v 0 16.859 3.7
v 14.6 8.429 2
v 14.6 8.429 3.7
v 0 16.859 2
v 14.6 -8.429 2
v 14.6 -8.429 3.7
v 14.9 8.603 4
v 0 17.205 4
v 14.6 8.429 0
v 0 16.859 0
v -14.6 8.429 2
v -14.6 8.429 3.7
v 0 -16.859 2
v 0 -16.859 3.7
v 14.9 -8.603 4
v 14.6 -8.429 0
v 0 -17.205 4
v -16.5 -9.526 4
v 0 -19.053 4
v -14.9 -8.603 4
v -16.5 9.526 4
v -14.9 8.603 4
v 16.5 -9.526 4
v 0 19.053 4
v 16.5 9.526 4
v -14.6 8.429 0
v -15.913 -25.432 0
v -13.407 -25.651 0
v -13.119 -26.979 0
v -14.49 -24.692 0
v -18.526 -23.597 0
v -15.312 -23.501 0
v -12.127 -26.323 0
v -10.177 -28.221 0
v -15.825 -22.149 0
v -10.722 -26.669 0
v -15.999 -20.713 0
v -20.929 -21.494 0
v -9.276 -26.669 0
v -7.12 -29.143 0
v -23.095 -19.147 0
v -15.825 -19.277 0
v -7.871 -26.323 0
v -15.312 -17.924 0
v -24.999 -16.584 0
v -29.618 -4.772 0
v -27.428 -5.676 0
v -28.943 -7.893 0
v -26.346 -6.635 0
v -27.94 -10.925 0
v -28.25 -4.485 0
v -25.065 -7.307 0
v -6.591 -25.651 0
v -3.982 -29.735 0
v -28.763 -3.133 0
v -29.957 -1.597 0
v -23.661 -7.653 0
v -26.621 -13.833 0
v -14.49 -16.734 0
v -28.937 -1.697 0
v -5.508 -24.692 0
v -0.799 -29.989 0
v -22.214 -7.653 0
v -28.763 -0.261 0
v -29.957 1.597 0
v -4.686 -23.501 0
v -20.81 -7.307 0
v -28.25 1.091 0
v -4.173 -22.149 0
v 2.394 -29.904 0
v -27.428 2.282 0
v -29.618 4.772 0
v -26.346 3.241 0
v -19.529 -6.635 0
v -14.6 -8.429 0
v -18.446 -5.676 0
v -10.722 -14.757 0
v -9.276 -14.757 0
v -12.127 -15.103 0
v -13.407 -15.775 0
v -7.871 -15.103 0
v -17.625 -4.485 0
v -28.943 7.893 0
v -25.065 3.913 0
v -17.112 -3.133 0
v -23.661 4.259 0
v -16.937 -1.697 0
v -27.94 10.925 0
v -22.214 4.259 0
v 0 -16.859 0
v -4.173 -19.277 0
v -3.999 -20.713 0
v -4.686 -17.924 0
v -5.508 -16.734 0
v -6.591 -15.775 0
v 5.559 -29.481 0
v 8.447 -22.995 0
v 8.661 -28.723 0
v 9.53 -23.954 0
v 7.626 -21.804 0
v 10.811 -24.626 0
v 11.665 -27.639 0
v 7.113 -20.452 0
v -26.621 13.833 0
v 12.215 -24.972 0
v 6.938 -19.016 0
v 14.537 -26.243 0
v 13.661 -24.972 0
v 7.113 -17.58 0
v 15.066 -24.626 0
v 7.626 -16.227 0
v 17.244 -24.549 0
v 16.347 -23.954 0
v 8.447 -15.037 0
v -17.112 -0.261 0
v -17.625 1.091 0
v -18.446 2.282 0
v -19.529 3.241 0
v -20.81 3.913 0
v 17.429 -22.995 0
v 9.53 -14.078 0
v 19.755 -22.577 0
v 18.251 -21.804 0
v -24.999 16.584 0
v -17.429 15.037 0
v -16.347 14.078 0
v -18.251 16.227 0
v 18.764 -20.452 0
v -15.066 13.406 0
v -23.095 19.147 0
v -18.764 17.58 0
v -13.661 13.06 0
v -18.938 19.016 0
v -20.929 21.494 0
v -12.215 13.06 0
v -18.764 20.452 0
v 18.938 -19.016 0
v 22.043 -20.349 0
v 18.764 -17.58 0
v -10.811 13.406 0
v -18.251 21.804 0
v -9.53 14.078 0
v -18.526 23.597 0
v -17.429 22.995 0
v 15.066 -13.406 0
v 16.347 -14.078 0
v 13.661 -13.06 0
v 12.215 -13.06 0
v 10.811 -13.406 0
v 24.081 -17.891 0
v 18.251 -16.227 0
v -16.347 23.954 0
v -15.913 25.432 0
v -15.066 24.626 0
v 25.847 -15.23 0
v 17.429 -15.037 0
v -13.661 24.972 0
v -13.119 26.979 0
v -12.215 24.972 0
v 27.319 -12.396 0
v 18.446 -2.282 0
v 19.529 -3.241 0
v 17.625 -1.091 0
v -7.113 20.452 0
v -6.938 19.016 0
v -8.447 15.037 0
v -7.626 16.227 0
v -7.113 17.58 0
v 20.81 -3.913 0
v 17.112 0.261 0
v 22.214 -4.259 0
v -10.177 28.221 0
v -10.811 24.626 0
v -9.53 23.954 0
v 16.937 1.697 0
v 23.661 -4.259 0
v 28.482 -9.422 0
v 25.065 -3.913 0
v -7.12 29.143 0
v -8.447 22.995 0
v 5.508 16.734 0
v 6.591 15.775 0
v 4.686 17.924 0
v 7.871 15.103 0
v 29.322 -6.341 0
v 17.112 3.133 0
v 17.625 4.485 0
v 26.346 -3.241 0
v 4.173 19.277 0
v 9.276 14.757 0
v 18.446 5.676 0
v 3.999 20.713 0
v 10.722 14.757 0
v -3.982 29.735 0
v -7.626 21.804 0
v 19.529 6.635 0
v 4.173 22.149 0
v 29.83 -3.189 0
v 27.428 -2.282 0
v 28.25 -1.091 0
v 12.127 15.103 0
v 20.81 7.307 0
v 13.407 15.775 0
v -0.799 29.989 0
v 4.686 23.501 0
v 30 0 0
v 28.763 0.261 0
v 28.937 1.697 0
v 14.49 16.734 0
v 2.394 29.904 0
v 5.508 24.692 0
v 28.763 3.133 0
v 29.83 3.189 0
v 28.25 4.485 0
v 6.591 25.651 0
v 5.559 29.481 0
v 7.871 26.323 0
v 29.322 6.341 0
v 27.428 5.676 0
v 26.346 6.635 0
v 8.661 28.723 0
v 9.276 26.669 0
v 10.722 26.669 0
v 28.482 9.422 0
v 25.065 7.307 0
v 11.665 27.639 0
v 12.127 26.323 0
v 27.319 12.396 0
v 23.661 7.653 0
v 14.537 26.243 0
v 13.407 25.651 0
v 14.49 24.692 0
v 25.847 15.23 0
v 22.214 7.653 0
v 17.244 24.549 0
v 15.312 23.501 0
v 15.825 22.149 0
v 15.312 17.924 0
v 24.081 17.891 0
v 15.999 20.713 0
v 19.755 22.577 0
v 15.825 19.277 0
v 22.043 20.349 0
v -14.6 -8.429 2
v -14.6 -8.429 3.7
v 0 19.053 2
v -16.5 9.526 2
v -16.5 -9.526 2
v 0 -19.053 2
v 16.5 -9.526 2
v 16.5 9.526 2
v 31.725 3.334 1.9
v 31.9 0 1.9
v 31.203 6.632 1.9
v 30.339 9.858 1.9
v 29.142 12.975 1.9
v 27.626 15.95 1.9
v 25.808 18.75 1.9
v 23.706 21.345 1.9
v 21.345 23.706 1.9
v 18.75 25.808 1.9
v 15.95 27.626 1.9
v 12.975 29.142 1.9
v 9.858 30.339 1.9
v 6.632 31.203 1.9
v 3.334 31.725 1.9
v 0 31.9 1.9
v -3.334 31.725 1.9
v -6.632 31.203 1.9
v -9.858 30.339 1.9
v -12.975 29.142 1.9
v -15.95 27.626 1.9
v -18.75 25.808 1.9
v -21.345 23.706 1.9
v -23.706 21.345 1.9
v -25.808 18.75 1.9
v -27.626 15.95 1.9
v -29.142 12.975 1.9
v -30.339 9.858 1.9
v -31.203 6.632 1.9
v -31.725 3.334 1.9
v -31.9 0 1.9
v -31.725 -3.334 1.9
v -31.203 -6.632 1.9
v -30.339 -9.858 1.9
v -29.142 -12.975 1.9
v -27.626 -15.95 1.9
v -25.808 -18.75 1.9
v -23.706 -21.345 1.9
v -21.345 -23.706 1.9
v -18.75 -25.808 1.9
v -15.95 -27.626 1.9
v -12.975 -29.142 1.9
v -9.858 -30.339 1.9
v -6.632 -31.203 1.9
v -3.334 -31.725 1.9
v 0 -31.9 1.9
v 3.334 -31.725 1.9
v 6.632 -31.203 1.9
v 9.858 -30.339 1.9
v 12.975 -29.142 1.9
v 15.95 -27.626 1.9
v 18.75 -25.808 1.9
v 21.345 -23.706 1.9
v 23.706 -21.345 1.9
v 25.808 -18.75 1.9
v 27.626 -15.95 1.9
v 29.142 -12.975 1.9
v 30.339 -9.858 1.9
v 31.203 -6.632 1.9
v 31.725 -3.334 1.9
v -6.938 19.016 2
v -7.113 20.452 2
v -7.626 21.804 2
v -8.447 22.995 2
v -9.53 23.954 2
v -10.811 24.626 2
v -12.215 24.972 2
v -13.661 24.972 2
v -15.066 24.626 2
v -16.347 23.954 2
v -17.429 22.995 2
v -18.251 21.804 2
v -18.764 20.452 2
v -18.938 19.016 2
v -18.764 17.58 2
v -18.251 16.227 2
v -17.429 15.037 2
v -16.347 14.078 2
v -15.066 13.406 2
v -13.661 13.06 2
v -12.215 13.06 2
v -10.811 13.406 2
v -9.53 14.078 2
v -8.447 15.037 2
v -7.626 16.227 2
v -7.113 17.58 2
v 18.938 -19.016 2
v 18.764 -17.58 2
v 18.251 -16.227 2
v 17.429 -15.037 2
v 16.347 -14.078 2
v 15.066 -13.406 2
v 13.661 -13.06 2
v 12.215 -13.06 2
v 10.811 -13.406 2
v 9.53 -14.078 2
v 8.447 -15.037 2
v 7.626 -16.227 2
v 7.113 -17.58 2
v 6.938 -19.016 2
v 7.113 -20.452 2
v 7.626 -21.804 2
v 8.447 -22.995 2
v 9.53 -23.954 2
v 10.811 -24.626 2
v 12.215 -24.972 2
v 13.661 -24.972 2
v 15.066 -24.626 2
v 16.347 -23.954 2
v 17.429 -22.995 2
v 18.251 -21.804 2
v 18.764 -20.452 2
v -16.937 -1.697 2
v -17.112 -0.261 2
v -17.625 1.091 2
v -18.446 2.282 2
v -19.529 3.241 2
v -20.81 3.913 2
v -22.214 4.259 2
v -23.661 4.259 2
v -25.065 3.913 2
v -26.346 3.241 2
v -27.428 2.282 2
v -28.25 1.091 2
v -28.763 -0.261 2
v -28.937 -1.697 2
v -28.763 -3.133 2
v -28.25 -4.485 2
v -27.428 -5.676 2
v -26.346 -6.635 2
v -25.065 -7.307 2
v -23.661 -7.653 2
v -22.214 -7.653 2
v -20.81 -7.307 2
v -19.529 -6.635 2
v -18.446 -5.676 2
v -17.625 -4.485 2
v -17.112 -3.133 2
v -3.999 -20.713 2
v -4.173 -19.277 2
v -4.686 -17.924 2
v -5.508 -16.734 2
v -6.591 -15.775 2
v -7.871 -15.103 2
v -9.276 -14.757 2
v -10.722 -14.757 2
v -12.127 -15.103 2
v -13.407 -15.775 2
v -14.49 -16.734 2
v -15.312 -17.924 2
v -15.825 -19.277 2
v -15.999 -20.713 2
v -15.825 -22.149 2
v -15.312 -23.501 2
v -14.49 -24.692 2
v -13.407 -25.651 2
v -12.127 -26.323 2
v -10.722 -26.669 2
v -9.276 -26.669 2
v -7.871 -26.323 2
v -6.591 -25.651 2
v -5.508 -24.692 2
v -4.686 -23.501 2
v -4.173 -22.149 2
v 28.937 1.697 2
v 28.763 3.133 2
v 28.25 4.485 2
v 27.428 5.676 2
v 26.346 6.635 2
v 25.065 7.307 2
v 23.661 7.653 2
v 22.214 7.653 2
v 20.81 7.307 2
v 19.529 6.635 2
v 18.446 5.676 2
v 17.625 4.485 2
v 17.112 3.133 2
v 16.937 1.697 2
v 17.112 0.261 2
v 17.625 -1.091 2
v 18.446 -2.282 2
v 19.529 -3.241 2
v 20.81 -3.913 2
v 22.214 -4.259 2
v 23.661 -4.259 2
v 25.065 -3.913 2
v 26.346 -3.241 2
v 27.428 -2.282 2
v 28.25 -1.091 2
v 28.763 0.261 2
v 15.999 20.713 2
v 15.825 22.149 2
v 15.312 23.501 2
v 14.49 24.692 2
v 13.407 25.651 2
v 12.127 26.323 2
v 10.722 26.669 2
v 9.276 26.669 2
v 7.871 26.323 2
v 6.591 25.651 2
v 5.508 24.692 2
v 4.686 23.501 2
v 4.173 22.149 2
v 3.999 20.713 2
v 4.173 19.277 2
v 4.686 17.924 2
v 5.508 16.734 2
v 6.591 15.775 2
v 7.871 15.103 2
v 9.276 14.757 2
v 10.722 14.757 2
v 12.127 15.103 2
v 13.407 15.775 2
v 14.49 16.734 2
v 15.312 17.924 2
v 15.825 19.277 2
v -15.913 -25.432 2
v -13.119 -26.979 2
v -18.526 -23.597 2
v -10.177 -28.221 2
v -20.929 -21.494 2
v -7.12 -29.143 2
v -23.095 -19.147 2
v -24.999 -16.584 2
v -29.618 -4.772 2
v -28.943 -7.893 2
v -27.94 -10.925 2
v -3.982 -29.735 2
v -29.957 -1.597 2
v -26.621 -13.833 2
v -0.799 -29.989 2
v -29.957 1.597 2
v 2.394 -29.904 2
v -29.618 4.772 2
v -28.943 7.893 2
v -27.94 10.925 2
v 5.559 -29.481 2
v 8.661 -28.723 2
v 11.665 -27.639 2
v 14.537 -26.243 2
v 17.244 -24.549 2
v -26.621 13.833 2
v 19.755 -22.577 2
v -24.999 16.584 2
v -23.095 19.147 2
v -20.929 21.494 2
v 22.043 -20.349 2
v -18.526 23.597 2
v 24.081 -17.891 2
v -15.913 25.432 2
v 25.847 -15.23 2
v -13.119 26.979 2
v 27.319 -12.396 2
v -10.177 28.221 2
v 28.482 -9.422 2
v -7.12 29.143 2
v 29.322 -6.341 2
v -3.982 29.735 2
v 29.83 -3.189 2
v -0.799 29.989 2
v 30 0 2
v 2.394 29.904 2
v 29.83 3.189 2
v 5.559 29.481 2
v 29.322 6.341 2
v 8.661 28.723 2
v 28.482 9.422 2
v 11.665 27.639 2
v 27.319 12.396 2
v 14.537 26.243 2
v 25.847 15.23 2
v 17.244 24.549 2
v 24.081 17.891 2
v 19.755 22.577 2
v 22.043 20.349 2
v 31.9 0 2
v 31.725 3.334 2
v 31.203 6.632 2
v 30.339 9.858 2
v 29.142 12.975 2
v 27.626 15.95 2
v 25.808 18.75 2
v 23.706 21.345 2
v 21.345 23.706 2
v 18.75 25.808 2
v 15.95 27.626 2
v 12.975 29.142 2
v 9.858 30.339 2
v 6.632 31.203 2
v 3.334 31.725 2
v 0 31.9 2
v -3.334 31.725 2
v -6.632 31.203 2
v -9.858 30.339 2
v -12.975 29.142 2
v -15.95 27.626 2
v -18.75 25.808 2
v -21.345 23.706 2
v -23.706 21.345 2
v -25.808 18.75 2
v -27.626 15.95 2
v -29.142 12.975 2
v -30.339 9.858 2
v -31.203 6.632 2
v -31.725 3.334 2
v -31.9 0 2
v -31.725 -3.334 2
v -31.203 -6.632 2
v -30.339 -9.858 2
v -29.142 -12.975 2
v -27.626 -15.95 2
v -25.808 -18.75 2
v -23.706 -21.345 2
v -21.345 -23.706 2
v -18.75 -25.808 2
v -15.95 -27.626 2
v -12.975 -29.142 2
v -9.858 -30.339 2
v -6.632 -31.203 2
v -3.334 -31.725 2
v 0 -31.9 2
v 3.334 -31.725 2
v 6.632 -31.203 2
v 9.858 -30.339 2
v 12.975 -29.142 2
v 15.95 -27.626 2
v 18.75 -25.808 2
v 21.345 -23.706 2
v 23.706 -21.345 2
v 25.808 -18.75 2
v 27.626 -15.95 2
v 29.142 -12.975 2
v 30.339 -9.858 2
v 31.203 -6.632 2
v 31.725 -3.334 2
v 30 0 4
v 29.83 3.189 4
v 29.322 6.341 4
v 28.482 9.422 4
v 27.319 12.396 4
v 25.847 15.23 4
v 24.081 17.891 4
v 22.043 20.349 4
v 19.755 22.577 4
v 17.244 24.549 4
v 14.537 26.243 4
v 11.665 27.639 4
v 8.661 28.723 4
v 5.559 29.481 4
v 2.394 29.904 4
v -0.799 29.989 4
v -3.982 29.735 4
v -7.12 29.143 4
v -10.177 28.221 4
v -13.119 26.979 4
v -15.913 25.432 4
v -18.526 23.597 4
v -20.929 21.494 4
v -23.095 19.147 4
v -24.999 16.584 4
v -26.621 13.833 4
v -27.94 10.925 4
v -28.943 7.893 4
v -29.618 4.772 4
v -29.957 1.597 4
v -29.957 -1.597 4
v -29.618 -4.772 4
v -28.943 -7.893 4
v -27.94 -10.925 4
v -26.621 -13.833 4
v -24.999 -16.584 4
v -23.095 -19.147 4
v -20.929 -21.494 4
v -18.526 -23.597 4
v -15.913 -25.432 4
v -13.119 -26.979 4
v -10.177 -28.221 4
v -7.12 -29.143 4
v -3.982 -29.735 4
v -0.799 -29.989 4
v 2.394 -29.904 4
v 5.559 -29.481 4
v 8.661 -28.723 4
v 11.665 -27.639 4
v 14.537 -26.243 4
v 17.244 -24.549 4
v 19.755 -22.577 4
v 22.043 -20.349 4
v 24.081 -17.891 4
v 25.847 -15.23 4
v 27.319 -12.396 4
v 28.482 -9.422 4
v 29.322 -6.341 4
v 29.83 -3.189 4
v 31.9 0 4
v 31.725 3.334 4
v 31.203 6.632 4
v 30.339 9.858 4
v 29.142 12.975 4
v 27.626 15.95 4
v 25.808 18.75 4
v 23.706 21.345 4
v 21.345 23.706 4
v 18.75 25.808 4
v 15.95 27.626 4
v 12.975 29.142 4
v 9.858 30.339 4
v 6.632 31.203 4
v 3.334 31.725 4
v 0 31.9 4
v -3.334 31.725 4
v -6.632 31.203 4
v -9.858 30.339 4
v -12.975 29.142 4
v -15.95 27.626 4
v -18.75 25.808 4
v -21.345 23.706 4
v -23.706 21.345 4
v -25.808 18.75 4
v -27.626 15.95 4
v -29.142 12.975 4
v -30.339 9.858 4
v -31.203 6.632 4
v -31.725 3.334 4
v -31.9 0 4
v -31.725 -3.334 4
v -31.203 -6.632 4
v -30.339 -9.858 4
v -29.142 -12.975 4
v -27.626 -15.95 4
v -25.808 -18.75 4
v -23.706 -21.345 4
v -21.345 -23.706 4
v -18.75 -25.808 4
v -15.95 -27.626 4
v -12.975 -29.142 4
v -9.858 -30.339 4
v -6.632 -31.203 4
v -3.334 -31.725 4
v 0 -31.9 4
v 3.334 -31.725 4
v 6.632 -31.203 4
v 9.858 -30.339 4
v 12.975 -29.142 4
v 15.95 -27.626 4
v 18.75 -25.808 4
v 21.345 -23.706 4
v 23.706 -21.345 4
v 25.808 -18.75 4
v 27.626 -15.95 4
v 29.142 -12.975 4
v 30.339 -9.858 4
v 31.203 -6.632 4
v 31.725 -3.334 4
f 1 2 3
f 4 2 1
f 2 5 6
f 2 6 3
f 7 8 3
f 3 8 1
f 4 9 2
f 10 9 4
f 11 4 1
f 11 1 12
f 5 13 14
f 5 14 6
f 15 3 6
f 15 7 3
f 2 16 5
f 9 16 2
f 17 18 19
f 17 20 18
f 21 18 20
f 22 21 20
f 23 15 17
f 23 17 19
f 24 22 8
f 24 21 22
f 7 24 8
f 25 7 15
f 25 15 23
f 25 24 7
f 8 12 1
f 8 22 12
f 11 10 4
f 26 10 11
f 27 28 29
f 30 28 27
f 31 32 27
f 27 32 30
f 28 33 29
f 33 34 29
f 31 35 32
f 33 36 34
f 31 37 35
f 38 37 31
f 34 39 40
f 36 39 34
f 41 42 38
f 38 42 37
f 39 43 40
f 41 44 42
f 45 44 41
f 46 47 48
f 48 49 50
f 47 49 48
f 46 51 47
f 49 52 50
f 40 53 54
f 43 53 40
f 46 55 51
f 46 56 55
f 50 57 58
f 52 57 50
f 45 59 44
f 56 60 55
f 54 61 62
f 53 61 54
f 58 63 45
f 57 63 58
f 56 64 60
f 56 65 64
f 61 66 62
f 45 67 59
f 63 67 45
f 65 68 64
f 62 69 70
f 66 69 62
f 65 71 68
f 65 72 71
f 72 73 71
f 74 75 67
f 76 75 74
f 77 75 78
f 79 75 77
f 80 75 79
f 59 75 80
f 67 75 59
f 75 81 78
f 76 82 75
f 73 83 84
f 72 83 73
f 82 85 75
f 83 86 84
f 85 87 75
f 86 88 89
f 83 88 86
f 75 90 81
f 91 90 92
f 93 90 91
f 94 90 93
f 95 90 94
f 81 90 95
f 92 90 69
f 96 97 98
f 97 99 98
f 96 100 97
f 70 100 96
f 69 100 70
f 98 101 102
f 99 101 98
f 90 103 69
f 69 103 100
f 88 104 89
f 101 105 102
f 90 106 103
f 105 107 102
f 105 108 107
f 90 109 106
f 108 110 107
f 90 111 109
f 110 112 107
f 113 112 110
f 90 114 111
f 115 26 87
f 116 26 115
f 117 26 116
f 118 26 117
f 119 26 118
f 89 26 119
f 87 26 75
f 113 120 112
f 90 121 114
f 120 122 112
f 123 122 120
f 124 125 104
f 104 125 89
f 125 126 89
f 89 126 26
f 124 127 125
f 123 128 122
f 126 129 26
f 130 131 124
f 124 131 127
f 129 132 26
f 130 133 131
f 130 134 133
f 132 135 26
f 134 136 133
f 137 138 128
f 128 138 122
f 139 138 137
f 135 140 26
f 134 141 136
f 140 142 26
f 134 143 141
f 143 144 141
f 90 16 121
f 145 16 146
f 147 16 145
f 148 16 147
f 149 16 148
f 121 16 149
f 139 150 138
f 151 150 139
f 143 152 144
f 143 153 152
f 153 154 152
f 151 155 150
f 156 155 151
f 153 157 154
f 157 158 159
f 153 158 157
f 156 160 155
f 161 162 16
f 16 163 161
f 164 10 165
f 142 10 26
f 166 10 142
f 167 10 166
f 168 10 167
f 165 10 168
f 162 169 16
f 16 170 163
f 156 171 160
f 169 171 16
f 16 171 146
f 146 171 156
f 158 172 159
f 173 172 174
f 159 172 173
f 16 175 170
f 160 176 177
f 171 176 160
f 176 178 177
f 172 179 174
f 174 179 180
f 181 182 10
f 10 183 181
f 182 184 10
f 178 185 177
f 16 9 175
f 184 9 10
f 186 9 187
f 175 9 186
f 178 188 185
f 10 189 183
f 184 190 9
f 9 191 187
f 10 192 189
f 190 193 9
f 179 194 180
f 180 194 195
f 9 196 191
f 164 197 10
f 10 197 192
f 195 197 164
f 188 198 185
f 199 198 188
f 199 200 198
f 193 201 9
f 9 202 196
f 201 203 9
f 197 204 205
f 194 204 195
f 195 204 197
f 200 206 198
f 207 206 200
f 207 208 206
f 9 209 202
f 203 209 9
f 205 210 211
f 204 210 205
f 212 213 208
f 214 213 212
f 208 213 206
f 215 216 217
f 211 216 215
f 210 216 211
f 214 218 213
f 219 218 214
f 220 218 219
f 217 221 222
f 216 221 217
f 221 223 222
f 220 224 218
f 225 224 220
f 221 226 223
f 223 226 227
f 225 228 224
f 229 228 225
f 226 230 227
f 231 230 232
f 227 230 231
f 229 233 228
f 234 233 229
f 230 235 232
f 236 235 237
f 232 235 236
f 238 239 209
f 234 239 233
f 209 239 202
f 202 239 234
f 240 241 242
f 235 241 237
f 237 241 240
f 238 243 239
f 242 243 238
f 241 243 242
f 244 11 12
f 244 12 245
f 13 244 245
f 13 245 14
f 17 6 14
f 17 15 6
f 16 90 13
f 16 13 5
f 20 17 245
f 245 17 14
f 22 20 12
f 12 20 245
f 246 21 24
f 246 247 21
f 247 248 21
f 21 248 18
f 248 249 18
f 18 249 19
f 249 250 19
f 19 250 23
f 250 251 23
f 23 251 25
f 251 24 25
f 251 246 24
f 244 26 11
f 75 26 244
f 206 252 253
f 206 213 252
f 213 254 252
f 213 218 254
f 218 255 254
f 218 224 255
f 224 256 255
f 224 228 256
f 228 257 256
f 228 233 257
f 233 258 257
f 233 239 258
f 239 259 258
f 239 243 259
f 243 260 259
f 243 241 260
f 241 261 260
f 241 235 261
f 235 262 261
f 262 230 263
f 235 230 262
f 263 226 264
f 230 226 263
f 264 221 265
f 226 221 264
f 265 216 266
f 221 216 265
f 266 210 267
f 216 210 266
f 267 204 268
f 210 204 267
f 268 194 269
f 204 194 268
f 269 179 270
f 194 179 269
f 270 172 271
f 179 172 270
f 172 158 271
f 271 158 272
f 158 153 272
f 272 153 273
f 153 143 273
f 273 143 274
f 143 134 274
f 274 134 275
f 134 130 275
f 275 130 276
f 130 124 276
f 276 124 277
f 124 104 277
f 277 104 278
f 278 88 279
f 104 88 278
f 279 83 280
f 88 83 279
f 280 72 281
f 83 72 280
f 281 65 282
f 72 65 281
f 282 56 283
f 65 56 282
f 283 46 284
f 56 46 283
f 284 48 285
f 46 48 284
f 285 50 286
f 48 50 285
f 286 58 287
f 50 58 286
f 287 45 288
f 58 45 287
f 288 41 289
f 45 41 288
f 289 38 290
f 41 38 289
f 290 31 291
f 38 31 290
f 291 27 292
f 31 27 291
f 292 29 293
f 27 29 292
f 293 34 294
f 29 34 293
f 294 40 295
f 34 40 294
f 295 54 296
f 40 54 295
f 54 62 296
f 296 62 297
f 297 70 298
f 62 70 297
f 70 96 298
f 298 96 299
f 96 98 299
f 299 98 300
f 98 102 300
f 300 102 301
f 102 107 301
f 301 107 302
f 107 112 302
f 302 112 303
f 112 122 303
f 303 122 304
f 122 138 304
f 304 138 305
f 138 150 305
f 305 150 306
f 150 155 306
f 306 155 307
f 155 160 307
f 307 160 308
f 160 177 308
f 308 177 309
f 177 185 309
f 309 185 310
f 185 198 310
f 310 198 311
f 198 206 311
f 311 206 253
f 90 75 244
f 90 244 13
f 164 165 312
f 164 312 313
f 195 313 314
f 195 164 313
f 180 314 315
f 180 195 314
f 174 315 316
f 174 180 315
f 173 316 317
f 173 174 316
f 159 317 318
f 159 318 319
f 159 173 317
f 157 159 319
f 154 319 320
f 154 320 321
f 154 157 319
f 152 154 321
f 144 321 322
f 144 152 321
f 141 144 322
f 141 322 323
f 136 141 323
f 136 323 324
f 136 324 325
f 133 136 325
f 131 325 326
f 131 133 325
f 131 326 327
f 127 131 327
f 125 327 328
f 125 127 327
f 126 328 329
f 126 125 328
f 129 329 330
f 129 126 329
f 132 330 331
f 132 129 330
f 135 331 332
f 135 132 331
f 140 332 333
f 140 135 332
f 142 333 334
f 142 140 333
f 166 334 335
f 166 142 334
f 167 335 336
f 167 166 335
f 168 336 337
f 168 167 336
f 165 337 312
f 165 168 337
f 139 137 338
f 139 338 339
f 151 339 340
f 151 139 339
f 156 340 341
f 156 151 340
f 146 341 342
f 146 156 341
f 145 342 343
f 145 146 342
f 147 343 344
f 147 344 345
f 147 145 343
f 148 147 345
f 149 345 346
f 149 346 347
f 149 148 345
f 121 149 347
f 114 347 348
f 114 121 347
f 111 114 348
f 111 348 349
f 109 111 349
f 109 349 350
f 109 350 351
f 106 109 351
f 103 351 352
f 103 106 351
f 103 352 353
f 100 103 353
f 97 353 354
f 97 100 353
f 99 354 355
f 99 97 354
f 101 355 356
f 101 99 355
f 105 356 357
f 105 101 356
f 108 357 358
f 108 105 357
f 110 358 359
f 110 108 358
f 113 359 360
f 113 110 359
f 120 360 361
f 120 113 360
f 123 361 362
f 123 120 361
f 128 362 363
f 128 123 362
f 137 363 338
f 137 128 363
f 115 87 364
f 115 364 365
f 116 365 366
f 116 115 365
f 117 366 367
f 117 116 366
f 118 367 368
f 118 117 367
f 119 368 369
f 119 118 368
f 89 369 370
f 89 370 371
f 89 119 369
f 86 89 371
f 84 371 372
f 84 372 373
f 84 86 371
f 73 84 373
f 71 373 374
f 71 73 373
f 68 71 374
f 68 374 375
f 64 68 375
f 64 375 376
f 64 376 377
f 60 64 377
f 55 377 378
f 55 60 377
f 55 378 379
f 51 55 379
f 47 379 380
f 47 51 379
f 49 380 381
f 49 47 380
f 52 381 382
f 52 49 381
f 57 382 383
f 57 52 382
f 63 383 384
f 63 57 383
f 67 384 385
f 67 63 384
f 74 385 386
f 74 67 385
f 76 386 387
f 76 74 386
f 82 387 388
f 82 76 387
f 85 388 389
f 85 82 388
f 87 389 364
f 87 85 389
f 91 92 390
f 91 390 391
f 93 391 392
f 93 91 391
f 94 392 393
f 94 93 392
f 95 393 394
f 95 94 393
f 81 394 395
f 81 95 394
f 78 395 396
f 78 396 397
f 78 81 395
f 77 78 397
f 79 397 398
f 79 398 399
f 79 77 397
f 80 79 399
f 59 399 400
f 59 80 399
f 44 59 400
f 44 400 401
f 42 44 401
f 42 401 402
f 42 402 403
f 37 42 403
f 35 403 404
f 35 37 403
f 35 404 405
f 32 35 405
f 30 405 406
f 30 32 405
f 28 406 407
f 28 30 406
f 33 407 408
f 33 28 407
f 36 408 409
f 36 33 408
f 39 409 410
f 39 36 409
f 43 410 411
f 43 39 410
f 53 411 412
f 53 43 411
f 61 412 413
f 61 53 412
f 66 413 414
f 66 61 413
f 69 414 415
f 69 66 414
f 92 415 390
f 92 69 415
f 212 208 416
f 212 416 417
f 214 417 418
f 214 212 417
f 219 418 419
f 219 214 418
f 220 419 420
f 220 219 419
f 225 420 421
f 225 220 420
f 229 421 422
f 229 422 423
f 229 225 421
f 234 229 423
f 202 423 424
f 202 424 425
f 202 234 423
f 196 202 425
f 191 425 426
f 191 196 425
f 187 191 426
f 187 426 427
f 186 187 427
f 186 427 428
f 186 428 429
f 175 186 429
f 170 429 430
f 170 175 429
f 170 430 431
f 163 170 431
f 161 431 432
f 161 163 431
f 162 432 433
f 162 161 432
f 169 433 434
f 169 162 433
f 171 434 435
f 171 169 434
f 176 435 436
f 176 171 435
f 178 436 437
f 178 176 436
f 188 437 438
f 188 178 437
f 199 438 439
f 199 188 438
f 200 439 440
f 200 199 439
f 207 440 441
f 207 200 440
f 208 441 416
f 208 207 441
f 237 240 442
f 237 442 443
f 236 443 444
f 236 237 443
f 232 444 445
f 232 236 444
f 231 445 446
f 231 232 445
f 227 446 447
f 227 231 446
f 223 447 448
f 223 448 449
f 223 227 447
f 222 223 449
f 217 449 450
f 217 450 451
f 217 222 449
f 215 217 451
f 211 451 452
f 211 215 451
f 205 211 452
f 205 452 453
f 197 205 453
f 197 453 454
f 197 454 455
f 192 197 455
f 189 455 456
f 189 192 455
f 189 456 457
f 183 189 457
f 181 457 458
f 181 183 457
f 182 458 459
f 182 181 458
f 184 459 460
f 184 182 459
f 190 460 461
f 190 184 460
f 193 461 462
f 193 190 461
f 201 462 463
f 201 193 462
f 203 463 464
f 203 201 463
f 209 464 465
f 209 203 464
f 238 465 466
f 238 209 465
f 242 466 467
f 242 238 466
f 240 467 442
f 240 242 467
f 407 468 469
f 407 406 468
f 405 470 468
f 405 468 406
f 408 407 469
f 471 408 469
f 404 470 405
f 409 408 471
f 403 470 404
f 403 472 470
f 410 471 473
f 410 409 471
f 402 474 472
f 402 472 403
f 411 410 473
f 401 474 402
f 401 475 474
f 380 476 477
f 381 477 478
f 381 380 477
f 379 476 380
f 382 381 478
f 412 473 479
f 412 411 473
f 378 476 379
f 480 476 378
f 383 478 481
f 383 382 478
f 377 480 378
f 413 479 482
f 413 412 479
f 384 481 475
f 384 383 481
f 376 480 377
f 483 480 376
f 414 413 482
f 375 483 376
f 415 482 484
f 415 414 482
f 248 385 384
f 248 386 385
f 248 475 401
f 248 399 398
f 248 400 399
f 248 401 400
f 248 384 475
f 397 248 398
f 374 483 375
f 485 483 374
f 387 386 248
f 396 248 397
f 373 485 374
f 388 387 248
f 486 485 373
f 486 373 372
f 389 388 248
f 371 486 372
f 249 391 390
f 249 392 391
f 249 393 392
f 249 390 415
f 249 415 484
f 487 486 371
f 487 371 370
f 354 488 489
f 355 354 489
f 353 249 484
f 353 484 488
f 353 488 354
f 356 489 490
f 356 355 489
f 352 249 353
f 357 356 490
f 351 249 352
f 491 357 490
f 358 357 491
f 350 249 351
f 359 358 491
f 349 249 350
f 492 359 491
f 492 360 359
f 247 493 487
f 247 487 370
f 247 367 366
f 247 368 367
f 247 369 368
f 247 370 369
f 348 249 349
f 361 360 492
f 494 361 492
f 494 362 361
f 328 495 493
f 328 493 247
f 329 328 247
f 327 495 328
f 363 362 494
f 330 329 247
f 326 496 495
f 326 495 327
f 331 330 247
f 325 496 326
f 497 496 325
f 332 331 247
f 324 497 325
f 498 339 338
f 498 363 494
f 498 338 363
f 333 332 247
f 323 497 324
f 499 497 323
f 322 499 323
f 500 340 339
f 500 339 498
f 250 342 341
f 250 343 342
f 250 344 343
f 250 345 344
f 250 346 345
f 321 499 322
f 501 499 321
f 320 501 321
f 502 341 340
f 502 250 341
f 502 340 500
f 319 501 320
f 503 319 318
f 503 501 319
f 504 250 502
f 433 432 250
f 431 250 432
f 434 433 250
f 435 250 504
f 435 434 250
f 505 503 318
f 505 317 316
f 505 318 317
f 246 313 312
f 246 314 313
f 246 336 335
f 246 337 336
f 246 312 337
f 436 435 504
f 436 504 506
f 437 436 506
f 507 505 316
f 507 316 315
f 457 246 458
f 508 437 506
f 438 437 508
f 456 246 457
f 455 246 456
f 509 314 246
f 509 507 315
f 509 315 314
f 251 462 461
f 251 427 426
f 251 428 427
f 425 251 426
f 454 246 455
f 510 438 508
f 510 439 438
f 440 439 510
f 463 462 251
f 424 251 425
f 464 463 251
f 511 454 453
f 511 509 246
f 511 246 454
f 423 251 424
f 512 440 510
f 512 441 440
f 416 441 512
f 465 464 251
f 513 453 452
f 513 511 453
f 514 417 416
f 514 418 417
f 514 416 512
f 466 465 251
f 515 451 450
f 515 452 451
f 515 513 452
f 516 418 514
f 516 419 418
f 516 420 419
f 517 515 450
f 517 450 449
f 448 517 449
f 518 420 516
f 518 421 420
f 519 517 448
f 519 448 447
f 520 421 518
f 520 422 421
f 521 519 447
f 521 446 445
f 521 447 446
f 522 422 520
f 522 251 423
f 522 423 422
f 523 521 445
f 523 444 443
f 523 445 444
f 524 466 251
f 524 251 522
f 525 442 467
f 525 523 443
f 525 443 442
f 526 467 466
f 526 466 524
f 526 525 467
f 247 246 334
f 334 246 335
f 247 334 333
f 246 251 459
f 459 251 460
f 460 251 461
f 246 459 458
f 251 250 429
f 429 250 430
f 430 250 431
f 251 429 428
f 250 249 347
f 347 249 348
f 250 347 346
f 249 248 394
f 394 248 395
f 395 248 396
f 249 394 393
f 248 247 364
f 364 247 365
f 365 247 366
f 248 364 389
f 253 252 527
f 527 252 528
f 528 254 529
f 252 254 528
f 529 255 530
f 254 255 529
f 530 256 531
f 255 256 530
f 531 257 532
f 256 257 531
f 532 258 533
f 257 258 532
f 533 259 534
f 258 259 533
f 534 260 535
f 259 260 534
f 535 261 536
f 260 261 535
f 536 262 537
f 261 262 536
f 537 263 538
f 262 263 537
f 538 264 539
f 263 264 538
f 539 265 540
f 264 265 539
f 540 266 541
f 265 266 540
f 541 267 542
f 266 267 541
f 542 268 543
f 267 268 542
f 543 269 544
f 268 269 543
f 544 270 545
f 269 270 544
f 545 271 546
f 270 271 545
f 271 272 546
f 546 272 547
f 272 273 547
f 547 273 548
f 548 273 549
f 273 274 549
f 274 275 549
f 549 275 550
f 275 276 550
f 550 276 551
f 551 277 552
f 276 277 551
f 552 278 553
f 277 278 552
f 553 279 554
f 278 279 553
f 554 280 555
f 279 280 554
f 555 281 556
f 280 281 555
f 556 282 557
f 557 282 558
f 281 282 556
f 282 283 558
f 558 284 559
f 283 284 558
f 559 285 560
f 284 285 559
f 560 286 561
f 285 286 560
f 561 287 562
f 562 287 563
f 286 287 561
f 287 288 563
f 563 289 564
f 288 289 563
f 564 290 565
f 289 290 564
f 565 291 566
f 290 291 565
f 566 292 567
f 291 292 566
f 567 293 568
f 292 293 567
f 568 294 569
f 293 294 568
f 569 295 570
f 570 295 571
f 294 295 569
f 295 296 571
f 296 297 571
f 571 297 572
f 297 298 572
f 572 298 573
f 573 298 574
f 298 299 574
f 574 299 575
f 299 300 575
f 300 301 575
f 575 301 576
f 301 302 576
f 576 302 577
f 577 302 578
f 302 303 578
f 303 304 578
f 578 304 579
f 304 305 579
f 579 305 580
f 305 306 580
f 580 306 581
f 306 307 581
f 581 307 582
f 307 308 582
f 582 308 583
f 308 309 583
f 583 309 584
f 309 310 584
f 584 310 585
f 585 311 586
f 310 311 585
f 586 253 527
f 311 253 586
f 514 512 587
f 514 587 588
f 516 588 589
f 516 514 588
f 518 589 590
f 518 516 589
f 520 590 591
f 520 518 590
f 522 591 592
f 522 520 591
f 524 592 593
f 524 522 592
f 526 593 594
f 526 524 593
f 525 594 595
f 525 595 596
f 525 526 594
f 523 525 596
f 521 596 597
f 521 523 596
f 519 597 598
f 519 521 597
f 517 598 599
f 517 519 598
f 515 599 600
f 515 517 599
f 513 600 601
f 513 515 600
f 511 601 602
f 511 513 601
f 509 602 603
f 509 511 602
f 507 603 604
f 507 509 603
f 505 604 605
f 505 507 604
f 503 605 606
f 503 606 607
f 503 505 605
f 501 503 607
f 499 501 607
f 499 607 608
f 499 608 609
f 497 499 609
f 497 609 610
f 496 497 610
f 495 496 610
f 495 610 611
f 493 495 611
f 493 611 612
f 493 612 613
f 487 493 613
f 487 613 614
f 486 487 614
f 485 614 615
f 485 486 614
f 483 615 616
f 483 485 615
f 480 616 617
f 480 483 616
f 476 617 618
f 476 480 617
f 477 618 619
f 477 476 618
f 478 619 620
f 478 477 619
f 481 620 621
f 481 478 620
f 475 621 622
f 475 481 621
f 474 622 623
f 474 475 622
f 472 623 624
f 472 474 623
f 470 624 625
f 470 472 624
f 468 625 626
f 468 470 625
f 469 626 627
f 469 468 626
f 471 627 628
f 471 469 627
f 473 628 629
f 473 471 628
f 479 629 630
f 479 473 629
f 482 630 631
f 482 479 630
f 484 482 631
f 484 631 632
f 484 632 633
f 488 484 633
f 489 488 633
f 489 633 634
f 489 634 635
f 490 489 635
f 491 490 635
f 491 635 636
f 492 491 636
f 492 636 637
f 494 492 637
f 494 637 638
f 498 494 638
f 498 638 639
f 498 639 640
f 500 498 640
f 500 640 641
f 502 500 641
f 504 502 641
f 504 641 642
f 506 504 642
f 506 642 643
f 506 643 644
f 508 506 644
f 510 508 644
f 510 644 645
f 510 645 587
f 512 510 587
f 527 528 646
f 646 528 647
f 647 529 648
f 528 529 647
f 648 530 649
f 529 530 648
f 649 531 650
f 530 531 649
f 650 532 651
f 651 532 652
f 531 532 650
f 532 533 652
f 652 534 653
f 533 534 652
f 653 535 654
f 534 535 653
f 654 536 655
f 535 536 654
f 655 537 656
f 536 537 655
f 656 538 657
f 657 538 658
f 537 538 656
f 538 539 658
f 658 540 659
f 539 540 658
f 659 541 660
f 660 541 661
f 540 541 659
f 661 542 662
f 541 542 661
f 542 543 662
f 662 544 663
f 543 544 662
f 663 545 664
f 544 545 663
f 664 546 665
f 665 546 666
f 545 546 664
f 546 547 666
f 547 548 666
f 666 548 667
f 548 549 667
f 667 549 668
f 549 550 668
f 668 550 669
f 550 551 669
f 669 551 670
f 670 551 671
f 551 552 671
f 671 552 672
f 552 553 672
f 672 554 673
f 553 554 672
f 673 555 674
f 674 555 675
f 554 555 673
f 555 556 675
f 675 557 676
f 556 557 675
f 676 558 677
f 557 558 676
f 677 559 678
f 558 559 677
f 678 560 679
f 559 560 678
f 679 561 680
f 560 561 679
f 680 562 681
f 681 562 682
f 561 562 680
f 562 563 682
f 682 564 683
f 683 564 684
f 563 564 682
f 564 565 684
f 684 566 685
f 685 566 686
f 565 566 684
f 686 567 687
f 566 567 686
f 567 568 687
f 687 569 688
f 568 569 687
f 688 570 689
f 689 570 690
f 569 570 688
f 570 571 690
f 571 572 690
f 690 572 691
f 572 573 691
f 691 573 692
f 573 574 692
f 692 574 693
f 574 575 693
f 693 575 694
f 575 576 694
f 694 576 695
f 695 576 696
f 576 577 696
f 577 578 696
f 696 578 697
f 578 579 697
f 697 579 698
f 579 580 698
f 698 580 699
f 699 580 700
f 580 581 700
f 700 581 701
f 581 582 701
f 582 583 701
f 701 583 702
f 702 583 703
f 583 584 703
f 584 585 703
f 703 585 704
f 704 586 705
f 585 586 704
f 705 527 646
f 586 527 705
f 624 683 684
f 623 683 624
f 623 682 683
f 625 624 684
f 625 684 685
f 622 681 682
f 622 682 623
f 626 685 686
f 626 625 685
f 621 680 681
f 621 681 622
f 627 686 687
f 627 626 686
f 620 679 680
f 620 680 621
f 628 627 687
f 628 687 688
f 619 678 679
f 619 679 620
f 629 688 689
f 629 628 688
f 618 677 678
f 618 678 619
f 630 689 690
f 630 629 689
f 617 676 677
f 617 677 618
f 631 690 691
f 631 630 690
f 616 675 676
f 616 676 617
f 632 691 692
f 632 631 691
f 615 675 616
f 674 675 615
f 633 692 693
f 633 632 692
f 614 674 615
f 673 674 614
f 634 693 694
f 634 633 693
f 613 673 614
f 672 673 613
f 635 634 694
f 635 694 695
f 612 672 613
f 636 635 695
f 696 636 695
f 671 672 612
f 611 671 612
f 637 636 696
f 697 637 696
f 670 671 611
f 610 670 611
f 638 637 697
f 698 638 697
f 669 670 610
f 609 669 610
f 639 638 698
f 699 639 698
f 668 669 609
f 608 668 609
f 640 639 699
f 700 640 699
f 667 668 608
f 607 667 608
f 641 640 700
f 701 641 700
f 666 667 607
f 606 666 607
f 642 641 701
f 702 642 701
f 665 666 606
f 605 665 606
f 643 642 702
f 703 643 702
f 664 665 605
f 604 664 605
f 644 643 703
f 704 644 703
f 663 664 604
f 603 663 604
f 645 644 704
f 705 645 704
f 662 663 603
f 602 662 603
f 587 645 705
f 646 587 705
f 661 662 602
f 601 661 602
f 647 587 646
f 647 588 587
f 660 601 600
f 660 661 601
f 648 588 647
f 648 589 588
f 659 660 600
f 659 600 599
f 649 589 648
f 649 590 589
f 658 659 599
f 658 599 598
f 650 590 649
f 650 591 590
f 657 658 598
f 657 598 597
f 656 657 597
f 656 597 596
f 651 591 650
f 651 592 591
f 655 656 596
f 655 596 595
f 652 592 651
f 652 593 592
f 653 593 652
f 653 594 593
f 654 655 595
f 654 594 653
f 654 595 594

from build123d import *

# Parameters (mm, degrees)
SKETCH_R        = 31.9
SKETCH_R_2      = 6
PAD_DEPTH       = 2
SKETCH001_R     = 31.9
SKETCH001_R_2   = 30
PAD001_DEPTH    = 2
PAD002_DEPTH    = 2
CHAMFER_SIZE    = 1.9
CHAMFER001_SIZE = 0.3


with BuildPart() as part:
    # Sketch → Pad (new body)
    with BuildSketch(Plane.XY):
        Circle(SKETCH_R)
        with Locations((9.999037, 20.71278)):
            Circle(SKETCH_R_2, mode=Mode.SUBTRACT)
        with Locations((22.937312, 1.69697)):
            Circle(SKETCH_R_2, mode=Mode.SUBTRACT)
        with Locations((12.938275, -19.01581)):
            Circle(SKETCH_R_2, mode=Mode.SUBTRACT)
        with Locations((-9.999037, -20.71278)):
            Circle(SKETCH_R_2, mode=Mode.SUBTRACT)
        with Locations((-22.937312, -1.69697)):
            Circle(SKETCH_R_2, mode=Mode.SUBTRACT)
        with Locations((-12.938275, 19.01581)):
            Circle(SKETCH_R_2, mode=Mode.SUBTRACT)
        Polygon((0, 16.858628), (-14.6, 8.429314), (-14.6, -8.429314), (0, -16.858628), (14.6, -8.429314), (14.6, 8.429314), align=None, mode=Mode.SUBTRACT)
    extrude(amount=PAD_DEPTH)

    # Sketch001 (on Face15 of Pad) → Pad001 (join)
    with BuildSketch(Plane.XY.offset(2)):
        Circle(SKETCH001_R)
        Circle(SKETCH001_R_2, mode=Mode.SUBTRACT)
    extrude(amount=PAD001_DEPTH)

    # Sketch002 (on Face17 of Pad001) → Pad002 (join)
    with BuildSketch(Plane.XY.offset(2)):
        Polygon((0, 19.052559), (-16.5, 9.526279), (-16.5, -9.526279), (0, -19.052559), (16.5, -9.526279), (16.5, 9.526279), align=None)
        Polygon((0, 16.858628), (-14.6, 8.429314), (-14.6, -8.429314), (0, -16.858628), (14.6, -8.429314), (14.6, 8.429314), align=None, mode=Mode.SUBTRACT)
    extrude(amount=PAD002_DEPTH)

    # Chamfer
    chamfer_edges = [part.edges().sort_by_distance(p)[0] for p in [
        (-31.9, 0, 0),
    ]]
    chamfer(chamfer_edges, length=CHAMFER_SIZE)

    # Chamfer001
    chamfer001_edges = [part.edges().sort_by_distance(p)[0] for p in [
        (-7.3, -12.643971, 4),
        (-14.6, 0, 4),
        (-7.3, 12.643971, 4),
        (7.3, 12.643971, 4),
        (14.6, 0, 4),
        (7.3, -12.643971, 4),
    ]]
    chamfer(chamfer001_edges, length=CHAMFER001_SIZE)


solid = part.part
